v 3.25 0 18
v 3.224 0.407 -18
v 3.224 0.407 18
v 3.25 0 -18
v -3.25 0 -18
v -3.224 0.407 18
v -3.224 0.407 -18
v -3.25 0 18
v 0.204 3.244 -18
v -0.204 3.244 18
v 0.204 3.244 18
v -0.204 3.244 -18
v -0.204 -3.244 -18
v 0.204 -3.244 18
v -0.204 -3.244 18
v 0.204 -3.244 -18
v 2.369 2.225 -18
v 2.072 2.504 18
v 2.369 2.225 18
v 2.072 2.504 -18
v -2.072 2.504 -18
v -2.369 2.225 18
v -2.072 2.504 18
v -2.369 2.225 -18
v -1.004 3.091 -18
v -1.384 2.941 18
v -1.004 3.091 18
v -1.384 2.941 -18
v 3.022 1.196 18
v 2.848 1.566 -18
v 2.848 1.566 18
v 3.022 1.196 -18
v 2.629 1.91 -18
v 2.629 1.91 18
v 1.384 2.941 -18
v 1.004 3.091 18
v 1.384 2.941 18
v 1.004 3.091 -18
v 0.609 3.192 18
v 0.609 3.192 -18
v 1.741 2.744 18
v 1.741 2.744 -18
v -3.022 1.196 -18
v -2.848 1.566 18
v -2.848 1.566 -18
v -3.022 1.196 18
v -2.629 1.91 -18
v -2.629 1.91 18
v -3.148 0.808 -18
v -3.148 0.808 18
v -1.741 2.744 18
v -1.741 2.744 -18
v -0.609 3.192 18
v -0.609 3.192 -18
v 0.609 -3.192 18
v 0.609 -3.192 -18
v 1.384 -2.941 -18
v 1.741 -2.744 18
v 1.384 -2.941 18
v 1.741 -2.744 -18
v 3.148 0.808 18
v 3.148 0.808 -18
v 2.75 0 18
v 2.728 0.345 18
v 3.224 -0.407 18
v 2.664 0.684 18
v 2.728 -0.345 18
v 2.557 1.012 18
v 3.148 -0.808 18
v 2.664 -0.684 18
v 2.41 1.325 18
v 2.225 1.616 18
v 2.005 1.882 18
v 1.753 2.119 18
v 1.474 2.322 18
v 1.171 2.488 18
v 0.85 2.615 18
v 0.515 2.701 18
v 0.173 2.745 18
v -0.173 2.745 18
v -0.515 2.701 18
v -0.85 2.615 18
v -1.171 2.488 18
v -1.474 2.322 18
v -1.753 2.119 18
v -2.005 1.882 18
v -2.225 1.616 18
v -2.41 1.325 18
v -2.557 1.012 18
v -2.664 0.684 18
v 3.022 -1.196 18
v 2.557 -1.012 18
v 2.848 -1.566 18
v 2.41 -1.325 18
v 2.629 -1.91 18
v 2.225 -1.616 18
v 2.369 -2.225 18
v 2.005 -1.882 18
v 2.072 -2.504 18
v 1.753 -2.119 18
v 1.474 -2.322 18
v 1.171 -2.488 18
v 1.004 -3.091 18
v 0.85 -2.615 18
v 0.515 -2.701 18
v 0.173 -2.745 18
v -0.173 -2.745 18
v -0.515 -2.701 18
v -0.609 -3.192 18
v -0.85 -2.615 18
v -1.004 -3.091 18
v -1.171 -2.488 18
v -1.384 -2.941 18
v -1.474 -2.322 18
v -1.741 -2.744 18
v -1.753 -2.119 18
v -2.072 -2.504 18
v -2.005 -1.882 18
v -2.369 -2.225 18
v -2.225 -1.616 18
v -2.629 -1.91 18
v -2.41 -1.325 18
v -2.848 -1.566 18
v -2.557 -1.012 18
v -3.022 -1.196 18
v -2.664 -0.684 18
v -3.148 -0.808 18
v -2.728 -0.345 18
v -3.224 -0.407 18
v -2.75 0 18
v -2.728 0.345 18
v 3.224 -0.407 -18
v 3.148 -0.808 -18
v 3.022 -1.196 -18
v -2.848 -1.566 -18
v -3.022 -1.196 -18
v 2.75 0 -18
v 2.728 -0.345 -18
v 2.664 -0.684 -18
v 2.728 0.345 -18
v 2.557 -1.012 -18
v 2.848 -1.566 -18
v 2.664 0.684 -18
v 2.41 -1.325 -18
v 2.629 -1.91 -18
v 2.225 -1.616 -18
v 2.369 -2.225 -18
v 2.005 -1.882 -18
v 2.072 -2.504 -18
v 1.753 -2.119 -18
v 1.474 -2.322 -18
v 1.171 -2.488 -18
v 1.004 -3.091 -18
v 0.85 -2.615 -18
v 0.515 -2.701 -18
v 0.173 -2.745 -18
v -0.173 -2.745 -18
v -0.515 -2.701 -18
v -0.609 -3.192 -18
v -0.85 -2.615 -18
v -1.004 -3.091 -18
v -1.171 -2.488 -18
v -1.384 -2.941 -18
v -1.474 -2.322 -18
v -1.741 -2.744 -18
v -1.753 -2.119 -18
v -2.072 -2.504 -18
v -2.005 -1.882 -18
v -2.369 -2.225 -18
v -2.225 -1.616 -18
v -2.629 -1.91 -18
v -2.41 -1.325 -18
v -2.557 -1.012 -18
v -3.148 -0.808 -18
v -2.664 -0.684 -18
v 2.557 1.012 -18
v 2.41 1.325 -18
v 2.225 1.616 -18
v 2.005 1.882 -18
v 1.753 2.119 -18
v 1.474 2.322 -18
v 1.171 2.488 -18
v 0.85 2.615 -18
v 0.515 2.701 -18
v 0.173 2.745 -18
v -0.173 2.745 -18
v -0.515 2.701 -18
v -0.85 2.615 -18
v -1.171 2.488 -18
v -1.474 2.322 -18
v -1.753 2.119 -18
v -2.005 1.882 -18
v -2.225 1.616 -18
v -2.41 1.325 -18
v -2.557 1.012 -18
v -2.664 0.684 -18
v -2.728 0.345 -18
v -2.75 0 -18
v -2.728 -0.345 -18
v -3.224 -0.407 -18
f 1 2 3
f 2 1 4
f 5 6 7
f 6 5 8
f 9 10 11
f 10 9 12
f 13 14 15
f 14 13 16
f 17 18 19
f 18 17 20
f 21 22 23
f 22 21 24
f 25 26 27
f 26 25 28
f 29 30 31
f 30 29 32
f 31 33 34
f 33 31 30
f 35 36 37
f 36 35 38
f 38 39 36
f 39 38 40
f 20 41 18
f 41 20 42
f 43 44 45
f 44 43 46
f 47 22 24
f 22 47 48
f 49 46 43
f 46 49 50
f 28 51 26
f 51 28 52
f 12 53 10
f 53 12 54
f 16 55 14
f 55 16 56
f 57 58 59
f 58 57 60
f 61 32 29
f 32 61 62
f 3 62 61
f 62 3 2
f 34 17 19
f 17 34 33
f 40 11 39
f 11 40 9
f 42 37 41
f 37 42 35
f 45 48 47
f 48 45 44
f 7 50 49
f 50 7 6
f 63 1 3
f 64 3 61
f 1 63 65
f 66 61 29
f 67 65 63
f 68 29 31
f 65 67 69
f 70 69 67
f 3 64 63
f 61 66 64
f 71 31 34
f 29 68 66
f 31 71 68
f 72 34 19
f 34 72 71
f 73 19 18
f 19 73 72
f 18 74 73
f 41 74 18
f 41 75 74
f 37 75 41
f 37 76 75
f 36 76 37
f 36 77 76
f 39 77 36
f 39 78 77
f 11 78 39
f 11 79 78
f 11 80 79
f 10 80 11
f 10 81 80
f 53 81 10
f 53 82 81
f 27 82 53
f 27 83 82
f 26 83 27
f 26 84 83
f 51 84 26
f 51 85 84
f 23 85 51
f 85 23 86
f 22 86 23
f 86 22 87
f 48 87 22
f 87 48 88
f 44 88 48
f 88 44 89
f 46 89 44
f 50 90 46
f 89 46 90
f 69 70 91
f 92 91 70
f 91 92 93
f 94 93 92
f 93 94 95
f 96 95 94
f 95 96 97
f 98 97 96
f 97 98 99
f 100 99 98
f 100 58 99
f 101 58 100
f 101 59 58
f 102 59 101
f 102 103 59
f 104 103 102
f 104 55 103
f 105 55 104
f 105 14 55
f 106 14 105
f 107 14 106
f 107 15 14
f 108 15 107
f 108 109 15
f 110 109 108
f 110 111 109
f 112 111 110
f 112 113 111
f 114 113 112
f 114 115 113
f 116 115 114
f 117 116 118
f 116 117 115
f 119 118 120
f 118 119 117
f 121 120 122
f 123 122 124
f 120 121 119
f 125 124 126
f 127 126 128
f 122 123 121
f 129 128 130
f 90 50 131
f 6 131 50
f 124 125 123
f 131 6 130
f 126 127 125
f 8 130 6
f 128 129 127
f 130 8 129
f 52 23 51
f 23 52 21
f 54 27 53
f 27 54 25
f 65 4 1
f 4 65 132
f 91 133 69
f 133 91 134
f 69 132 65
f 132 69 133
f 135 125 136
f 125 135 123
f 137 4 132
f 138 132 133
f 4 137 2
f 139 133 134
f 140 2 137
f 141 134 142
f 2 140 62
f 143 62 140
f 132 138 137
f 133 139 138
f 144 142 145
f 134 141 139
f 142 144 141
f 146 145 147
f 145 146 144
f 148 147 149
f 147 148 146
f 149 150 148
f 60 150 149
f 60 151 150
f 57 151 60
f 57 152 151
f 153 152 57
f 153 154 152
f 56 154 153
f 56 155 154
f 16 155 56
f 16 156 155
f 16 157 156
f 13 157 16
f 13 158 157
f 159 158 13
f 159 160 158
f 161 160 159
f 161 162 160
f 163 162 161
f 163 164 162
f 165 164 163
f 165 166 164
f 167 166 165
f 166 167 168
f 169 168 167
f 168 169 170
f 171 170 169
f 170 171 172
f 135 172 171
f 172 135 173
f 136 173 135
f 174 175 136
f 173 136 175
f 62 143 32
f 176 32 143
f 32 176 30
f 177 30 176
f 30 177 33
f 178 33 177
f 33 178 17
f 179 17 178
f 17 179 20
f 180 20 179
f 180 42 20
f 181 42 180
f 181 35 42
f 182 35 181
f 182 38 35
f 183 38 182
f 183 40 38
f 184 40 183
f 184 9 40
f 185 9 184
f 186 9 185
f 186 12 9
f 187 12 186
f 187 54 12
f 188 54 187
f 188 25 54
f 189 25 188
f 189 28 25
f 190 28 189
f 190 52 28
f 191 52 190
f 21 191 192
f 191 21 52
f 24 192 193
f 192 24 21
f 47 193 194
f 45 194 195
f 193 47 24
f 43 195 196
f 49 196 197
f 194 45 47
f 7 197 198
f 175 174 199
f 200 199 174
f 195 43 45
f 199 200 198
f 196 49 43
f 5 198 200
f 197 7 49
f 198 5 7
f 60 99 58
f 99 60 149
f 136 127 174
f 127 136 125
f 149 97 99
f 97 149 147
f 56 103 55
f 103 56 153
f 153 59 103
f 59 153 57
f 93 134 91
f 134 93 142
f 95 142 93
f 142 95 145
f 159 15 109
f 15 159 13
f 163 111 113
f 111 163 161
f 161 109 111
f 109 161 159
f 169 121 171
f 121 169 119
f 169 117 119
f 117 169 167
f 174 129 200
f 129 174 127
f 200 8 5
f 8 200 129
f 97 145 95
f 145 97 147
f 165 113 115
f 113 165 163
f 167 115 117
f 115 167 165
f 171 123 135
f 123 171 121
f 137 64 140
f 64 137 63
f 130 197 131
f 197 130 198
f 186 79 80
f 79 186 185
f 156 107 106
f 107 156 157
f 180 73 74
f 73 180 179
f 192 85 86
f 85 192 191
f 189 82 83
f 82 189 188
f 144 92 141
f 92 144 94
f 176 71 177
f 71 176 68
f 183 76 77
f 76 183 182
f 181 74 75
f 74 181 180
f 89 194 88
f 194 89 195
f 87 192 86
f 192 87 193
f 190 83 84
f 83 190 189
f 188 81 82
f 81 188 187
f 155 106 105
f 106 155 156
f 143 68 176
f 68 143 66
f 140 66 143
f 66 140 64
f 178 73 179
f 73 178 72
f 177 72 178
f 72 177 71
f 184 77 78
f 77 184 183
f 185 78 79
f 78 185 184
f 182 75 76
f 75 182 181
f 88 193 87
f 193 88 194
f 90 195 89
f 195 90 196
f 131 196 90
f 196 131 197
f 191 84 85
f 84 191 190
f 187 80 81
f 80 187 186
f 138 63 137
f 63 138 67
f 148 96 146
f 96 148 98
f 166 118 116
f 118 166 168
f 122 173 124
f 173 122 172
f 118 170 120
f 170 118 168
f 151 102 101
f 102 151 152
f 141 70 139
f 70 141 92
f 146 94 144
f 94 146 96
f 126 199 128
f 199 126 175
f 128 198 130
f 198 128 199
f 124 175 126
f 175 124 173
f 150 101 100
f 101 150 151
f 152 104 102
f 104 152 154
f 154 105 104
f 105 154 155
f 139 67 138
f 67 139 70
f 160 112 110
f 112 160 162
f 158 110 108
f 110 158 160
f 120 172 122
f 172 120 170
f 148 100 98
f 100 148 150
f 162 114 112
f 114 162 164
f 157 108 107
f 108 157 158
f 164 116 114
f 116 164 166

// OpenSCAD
$fn = 50;


difference() {
	union() {
		translate(v = [0, 0, -18.0000000000]) {
			cylinder(h = 36, r = 3.2500000000);
		}
	}
	union() {
		translate(v = [0, 0, -100.0000000000]) {
			cylinder(h = 200, r = 2.7500000000);
		}
	}
}
